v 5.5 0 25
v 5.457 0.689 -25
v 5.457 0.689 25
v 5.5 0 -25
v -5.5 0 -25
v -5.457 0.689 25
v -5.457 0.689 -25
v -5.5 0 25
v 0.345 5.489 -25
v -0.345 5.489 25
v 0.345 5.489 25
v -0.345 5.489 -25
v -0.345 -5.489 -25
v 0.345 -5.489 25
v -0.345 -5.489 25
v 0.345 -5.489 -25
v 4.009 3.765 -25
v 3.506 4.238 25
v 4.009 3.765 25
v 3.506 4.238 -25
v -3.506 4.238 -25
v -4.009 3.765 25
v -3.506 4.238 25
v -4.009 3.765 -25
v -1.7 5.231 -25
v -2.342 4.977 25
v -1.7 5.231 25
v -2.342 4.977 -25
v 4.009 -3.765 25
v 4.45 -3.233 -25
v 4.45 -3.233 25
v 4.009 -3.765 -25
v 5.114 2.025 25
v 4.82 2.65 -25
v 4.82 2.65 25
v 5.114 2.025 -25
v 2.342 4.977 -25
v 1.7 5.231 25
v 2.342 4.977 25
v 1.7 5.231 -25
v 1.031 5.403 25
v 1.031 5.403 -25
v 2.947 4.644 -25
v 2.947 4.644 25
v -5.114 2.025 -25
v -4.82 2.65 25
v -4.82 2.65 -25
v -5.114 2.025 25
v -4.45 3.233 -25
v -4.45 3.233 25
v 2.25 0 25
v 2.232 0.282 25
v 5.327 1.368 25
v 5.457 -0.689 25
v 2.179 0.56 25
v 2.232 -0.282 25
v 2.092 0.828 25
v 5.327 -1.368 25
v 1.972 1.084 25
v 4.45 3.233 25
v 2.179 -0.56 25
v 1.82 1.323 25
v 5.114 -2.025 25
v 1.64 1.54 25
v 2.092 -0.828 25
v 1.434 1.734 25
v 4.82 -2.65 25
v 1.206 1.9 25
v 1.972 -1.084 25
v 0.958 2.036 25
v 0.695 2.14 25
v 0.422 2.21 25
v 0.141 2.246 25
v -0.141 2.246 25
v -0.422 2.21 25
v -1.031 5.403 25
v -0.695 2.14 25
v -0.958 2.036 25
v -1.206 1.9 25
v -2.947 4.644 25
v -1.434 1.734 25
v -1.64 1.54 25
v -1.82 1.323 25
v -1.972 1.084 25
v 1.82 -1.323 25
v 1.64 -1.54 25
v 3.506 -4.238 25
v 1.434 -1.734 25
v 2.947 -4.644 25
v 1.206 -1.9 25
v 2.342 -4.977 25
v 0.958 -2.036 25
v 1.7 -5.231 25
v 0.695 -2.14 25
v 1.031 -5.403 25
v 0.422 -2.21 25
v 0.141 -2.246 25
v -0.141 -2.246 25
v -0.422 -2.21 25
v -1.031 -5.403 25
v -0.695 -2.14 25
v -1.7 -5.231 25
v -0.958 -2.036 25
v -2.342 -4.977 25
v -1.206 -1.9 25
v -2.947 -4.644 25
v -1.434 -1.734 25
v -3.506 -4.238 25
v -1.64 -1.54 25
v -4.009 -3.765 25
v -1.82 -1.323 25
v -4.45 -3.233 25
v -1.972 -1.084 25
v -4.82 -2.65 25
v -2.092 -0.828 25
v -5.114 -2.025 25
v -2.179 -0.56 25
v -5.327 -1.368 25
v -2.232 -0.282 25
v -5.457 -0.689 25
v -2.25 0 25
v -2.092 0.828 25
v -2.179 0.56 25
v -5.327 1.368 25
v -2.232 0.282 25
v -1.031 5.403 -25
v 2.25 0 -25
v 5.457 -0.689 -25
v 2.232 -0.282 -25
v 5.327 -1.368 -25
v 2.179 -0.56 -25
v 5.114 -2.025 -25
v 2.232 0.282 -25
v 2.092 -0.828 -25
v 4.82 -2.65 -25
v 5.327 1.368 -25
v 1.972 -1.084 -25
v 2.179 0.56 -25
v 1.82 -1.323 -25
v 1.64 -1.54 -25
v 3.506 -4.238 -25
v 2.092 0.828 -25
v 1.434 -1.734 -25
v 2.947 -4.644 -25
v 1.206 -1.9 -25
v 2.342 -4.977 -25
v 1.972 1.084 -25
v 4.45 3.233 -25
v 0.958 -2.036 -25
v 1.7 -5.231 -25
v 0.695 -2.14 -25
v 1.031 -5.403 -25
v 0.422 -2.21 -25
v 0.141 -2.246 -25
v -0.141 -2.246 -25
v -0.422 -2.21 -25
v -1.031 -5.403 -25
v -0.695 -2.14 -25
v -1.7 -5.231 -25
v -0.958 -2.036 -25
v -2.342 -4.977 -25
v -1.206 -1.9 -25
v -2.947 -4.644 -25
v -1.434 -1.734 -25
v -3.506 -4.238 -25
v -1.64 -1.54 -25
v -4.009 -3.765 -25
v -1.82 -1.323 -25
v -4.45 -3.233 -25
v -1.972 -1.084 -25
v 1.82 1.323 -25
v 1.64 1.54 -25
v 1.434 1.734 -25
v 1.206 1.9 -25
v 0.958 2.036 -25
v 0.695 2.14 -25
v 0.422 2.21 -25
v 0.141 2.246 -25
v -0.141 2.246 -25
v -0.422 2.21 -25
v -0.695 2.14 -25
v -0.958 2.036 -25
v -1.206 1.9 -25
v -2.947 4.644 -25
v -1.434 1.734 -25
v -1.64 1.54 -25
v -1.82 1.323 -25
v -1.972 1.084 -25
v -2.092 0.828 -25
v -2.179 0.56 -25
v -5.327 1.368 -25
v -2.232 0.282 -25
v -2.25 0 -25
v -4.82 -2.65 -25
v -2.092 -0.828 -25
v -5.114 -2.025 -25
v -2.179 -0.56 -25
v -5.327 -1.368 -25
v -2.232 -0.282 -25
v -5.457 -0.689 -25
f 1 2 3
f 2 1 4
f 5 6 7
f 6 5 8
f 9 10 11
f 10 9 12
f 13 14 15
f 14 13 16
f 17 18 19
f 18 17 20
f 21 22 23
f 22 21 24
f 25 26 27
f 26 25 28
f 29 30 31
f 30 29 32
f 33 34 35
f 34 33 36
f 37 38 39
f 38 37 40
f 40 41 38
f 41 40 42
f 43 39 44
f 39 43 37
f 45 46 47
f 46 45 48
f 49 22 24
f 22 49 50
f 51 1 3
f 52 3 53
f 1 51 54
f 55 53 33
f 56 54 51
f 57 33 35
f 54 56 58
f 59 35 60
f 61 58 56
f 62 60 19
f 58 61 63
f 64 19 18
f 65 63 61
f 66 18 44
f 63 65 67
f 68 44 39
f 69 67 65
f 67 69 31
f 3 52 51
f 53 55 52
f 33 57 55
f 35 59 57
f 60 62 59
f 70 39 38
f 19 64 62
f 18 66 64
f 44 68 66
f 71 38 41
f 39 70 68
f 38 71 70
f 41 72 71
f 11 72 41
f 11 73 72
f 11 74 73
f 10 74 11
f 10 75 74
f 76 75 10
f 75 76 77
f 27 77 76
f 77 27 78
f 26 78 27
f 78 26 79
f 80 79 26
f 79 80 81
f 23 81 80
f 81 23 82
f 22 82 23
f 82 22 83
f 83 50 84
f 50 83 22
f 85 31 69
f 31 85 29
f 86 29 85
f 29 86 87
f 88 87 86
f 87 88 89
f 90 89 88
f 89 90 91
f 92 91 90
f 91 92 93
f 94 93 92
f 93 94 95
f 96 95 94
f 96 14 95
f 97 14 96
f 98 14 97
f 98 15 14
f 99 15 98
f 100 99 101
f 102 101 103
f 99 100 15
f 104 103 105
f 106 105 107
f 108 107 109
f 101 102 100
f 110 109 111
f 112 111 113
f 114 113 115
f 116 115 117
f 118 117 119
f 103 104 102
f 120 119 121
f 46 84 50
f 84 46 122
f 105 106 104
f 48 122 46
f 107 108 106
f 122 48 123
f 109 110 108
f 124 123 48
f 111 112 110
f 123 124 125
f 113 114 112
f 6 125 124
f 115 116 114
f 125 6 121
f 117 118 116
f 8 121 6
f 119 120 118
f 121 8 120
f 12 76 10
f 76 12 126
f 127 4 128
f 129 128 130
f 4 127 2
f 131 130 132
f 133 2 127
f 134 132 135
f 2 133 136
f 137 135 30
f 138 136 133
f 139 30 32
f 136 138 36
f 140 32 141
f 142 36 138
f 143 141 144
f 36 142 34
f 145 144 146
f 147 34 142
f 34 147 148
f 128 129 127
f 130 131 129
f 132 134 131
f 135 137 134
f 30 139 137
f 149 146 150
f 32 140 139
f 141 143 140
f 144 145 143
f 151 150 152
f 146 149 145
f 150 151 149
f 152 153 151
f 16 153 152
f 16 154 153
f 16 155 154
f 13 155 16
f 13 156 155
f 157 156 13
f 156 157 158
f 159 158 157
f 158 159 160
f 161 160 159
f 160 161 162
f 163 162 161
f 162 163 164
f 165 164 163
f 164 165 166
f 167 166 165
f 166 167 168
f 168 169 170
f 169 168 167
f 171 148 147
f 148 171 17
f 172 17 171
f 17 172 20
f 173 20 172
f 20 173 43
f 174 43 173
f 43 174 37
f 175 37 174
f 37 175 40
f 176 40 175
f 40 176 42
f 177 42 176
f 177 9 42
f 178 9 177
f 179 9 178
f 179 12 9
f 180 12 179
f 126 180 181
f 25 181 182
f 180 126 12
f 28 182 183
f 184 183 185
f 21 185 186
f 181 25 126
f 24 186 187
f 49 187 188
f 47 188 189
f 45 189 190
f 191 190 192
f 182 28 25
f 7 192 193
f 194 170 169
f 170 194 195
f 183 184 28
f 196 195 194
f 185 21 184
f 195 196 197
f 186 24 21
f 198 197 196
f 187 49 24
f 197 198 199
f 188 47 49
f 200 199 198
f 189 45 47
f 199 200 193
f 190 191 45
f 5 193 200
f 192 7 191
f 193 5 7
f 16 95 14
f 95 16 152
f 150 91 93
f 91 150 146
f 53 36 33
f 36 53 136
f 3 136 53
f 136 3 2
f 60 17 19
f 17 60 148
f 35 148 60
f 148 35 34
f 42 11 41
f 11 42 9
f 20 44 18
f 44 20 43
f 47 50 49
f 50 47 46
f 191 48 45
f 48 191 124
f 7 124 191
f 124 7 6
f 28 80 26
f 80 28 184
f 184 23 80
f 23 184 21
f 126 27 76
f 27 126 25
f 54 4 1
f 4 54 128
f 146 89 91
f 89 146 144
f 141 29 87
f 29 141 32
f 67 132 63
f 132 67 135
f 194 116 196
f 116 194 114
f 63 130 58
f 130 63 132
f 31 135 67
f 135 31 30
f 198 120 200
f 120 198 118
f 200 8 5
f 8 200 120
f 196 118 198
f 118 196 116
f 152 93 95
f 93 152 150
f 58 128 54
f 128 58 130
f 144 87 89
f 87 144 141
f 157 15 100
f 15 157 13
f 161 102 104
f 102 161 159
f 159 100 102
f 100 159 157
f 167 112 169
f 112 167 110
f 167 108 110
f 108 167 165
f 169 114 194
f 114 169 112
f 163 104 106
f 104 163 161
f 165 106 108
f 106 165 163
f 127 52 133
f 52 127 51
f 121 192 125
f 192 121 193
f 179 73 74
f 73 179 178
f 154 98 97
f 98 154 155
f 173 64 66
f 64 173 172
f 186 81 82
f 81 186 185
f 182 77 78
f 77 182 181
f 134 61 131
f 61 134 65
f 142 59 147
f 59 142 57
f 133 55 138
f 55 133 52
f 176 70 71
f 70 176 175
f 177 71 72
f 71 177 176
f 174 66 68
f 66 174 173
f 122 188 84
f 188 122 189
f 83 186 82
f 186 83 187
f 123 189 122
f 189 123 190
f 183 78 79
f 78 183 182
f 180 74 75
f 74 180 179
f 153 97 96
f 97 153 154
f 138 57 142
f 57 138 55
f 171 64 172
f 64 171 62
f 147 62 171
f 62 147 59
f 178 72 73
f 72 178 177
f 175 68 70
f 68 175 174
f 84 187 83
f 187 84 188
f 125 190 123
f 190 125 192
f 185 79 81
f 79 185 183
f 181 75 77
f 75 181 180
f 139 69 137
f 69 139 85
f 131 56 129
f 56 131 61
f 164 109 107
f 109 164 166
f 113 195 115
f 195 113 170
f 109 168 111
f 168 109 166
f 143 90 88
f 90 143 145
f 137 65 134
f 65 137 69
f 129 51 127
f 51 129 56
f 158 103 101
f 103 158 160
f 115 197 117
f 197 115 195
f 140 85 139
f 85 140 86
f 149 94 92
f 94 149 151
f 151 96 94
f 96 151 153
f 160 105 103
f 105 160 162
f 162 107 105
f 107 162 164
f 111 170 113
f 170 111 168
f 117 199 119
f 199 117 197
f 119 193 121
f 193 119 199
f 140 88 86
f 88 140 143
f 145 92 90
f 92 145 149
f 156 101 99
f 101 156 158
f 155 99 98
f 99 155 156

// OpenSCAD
$fn = 50;


difference() {
	union() {
		translate(v = [0, 0, -25.0000000000]) {
			cylinder(h = 50, r = 5.5000000000);
		}
	}
	union() {
		translate(v = [0, 0, -100.0000000000]) {
			cylinder(h = 200, r = 2.2500000000);
		}
	}
}
